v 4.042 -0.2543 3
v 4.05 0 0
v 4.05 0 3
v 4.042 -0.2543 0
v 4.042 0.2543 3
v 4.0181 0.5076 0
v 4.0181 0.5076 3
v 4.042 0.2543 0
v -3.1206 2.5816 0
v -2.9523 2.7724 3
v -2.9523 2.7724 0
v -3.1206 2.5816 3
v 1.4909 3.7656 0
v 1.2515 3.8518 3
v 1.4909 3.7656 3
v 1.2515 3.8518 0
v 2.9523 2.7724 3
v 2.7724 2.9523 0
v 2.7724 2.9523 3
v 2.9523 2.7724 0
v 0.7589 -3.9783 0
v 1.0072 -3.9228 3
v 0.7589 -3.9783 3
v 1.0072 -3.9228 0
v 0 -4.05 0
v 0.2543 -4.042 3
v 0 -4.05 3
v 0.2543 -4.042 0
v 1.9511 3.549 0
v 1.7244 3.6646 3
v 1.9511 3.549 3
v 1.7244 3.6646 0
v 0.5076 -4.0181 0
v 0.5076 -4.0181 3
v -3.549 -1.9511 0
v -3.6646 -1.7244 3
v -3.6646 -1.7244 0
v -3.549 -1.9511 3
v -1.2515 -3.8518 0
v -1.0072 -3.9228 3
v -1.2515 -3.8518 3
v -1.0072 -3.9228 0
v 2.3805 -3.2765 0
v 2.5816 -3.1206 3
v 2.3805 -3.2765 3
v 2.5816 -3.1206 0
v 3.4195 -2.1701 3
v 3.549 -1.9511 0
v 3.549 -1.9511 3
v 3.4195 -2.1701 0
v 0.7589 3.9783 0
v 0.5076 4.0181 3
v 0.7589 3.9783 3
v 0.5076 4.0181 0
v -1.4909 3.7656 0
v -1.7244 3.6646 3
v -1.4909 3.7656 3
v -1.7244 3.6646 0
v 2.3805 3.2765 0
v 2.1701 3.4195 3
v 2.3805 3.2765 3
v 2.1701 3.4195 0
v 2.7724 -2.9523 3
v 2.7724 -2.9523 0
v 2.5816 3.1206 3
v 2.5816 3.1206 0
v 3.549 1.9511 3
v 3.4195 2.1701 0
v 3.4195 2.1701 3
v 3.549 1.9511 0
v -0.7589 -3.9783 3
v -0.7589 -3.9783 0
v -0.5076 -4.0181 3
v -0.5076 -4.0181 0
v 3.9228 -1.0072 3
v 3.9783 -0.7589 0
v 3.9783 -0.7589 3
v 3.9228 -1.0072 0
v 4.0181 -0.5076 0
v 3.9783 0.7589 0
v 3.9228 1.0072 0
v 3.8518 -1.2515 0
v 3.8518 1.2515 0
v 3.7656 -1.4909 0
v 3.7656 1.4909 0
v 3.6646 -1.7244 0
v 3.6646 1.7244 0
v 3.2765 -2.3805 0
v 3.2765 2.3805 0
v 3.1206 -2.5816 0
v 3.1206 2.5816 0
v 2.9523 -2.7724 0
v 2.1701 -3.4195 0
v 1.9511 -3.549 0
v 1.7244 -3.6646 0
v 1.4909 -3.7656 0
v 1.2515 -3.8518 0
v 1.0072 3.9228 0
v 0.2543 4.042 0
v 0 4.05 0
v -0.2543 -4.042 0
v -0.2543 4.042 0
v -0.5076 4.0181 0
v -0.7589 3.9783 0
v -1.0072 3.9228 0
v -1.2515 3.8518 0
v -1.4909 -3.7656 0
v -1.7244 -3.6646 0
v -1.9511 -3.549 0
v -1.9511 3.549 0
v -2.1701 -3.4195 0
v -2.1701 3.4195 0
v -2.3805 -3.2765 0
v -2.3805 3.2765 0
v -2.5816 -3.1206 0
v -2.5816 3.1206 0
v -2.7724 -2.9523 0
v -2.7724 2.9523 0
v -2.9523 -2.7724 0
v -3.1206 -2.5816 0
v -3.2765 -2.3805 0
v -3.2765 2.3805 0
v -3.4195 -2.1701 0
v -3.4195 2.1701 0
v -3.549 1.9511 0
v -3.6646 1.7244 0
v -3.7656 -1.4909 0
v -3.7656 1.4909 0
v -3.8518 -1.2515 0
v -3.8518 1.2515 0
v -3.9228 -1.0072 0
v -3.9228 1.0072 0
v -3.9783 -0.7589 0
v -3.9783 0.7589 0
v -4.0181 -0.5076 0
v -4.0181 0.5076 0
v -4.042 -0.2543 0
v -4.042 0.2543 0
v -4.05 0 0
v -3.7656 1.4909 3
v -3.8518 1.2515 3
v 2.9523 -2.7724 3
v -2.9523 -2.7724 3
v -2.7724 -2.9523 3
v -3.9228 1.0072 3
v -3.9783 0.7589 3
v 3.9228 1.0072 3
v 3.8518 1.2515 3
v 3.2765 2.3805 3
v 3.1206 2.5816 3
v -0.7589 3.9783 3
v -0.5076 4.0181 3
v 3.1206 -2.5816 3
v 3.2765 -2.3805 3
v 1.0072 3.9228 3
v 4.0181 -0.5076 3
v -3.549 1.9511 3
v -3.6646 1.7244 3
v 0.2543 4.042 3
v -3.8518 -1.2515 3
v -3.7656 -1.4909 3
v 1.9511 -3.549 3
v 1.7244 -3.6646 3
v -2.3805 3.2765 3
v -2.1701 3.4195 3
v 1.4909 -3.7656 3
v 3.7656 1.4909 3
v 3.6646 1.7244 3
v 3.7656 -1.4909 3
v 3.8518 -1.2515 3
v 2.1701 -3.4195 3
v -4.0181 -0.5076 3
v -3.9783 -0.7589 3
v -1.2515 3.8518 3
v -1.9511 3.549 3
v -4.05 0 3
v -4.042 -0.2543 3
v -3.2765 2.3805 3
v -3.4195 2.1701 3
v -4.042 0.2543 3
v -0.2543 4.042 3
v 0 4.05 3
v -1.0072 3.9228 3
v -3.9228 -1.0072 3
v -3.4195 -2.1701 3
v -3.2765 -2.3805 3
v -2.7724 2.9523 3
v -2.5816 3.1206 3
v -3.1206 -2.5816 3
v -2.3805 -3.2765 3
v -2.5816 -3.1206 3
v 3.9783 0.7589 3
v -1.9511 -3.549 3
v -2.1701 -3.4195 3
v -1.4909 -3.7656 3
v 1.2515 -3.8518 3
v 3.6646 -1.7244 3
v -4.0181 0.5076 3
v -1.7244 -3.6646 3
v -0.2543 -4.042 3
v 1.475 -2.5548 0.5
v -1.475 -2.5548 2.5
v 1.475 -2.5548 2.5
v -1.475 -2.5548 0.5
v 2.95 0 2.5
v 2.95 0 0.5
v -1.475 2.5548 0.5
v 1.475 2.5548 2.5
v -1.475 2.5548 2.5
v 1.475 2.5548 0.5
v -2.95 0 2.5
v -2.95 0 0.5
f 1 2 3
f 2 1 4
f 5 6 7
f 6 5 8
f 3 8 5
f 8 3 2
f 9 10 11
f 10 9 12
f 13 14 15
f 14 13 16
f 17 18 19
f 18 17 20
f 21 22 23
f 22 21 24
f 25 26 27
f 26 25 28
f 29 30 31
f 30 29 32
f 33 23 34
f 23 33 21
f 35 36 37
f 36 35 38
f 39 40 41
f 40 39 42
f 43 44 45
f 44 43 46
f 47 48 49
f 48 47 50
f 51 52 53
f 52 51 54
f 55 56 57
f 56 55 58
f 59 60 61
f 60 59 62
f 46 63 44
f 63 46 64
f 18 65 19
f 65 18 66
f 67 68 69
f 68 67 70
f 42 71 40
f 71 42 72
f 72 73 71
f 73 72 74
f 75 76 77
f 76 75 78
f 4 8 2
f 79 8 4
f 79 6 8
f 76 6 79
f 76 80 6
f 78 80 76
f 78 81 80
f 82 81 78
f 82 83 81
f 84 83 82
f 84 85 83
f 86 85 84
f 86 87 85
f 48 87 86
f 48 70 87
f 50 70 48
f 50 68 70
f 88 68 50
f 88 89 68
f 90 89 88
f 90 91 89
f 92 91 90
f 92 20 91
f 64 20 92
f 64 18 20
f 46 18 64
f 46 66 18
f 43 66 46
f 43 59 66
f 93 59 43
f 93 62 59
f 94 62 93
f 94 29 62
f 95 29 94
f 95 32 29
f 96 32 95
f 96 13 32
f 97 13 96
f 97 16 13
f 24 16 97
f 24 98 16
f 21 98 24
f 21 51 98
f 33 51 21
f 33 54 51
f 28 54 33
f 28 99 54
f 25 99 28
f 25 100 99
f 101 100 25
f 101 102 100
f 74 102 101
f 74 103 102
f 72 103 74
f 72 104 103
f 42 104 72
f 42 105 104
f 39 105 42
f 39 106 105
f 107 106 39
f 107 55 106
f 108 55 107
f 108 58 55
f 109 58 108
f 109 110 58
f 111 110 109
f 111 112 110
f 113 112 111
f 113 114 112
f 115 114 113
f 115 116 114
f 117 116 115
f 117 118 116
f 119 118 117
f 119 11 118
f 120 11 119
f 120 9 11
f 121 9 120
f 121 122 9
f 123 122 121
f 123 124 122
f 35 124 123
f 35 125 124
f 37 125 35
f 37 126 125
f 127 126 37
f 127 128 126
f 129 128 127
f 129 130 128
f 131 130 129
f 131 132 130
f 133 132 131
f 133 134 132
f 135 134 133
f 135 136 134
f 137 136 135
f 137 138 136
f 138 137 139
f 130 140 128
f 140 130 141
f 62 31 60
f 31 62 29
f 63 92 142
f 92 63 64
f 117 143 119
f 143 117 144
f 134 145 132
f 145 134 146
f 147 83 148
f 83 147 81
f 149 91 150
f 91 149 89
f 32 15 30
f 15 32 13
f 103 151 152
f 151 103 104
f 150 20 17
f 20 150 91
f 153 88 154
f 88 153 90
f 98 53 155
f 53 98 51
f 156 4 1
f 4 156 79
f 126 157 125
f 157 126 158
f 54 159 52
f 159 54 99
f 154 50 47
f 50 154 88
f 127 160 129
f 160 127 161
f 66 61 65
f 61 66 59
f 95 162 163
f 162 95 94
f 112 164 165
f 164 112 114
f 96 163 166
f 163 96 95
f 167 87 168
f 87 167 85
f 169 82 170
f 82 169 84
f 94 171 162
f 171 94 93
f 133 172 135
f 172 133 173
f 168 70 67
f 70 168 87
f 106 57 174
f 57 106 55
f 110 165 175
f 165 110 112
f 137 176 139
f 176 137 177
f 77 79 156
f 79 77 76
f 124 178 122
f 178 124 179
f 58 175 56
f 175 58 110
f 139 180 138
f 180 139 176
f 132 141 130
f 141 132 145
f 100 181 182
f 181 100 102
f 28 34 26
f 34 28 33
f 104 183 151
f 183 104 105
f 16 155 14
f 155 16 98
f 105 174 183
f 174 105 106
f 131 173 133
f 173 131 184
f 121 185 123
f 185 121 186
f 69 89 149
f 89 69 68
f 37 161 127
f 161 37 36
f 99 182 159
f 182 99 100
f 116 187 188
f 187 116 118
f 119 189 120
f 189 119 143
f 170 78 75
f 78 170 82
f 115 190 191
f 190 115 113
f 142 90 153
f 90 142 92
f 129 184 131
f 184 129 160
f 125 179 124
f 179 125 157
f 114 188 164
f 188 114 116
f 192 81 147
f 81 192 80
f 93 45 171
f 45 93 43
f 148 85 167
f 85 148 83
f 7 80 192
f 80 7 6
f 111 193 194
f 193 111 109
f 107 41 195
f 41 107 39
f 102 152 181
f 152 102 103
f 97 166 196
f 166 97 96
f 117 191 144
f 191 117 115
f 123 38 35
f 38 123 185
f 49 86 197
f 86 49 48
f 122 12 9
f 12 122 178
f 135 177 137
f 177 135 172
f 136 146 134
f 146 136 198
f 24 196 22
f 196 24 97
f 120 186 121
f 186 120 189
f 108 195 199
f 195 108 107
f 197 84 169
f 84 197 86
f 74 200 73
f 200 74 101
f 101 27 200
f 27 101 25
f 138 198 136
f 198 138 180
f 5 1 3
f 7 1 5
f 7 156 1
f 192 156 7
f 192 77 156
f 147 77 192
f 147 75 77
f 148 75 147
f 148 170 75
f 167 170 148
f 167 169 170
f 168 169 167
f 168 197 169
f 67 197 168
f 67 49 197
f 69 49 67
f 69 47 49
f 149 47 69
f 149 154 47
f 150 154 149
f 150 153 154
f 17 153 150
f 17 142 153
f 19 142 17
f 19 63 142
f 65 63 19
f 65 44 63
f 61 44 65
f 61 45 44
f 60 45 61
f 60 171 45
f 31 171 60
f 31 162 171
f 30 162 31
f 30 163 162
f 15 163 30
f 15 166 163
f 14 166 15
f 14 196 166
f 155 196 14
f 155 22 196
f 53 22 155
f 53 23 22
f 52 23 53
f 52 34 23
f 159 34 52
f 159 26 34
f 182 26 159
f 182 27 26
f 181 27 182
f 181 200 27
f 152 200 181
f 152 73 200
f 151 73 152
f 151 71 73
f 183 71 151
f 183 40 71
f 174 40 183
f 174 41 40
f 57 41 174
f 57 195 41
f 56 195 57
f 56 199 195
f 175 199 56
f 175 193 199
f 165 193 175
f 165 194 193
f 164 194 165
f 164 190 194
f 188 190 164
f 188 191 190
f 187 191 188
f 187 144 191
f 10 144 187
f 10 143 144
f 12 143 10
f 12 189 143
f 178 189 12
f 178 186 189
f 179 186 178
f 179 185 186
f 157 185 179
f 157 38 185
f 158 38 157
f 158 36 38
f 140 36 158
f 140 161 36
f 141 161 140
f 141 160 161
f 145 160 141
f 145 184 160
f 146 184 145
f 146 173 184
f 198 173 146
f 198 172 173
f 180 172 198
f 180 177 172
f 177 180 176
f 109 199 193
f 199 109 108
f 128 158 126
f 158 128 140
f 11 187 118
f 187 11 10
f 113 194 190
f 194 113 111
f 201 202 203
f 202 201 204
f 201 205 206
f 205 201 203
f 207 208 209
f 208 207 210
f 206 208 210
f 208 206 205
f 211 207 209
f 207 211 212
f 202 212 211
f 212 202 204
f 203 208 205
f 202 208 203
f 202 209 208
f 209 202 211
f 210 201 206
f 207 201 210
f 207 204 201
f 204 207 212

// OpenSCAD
// Variable declarations
diameter = 8; // Outer diameter of the bolt cap
height = 3; // Height of the bolt cap
hex_diameter = 6; // Diameter of the hex recess
hex_height = 2; // Depth of the hex recess
tolerance = 0.1; // Tolerance for 3D printing

// Bolt cap with hex recess
difference() {
    // Main cylinder of the bolt cap
    cylinder(h = height, d = diameter + tolerance, $fn = 100);
    // Hex recess
    translate([0, 0, (height - hex_height) / 2])
        cylinder(h = hex_height, d = hex_diameter - tolerance, $fn = 6);
}

// Center the model at origin
translate([0, 0, -height / 2]) {}
